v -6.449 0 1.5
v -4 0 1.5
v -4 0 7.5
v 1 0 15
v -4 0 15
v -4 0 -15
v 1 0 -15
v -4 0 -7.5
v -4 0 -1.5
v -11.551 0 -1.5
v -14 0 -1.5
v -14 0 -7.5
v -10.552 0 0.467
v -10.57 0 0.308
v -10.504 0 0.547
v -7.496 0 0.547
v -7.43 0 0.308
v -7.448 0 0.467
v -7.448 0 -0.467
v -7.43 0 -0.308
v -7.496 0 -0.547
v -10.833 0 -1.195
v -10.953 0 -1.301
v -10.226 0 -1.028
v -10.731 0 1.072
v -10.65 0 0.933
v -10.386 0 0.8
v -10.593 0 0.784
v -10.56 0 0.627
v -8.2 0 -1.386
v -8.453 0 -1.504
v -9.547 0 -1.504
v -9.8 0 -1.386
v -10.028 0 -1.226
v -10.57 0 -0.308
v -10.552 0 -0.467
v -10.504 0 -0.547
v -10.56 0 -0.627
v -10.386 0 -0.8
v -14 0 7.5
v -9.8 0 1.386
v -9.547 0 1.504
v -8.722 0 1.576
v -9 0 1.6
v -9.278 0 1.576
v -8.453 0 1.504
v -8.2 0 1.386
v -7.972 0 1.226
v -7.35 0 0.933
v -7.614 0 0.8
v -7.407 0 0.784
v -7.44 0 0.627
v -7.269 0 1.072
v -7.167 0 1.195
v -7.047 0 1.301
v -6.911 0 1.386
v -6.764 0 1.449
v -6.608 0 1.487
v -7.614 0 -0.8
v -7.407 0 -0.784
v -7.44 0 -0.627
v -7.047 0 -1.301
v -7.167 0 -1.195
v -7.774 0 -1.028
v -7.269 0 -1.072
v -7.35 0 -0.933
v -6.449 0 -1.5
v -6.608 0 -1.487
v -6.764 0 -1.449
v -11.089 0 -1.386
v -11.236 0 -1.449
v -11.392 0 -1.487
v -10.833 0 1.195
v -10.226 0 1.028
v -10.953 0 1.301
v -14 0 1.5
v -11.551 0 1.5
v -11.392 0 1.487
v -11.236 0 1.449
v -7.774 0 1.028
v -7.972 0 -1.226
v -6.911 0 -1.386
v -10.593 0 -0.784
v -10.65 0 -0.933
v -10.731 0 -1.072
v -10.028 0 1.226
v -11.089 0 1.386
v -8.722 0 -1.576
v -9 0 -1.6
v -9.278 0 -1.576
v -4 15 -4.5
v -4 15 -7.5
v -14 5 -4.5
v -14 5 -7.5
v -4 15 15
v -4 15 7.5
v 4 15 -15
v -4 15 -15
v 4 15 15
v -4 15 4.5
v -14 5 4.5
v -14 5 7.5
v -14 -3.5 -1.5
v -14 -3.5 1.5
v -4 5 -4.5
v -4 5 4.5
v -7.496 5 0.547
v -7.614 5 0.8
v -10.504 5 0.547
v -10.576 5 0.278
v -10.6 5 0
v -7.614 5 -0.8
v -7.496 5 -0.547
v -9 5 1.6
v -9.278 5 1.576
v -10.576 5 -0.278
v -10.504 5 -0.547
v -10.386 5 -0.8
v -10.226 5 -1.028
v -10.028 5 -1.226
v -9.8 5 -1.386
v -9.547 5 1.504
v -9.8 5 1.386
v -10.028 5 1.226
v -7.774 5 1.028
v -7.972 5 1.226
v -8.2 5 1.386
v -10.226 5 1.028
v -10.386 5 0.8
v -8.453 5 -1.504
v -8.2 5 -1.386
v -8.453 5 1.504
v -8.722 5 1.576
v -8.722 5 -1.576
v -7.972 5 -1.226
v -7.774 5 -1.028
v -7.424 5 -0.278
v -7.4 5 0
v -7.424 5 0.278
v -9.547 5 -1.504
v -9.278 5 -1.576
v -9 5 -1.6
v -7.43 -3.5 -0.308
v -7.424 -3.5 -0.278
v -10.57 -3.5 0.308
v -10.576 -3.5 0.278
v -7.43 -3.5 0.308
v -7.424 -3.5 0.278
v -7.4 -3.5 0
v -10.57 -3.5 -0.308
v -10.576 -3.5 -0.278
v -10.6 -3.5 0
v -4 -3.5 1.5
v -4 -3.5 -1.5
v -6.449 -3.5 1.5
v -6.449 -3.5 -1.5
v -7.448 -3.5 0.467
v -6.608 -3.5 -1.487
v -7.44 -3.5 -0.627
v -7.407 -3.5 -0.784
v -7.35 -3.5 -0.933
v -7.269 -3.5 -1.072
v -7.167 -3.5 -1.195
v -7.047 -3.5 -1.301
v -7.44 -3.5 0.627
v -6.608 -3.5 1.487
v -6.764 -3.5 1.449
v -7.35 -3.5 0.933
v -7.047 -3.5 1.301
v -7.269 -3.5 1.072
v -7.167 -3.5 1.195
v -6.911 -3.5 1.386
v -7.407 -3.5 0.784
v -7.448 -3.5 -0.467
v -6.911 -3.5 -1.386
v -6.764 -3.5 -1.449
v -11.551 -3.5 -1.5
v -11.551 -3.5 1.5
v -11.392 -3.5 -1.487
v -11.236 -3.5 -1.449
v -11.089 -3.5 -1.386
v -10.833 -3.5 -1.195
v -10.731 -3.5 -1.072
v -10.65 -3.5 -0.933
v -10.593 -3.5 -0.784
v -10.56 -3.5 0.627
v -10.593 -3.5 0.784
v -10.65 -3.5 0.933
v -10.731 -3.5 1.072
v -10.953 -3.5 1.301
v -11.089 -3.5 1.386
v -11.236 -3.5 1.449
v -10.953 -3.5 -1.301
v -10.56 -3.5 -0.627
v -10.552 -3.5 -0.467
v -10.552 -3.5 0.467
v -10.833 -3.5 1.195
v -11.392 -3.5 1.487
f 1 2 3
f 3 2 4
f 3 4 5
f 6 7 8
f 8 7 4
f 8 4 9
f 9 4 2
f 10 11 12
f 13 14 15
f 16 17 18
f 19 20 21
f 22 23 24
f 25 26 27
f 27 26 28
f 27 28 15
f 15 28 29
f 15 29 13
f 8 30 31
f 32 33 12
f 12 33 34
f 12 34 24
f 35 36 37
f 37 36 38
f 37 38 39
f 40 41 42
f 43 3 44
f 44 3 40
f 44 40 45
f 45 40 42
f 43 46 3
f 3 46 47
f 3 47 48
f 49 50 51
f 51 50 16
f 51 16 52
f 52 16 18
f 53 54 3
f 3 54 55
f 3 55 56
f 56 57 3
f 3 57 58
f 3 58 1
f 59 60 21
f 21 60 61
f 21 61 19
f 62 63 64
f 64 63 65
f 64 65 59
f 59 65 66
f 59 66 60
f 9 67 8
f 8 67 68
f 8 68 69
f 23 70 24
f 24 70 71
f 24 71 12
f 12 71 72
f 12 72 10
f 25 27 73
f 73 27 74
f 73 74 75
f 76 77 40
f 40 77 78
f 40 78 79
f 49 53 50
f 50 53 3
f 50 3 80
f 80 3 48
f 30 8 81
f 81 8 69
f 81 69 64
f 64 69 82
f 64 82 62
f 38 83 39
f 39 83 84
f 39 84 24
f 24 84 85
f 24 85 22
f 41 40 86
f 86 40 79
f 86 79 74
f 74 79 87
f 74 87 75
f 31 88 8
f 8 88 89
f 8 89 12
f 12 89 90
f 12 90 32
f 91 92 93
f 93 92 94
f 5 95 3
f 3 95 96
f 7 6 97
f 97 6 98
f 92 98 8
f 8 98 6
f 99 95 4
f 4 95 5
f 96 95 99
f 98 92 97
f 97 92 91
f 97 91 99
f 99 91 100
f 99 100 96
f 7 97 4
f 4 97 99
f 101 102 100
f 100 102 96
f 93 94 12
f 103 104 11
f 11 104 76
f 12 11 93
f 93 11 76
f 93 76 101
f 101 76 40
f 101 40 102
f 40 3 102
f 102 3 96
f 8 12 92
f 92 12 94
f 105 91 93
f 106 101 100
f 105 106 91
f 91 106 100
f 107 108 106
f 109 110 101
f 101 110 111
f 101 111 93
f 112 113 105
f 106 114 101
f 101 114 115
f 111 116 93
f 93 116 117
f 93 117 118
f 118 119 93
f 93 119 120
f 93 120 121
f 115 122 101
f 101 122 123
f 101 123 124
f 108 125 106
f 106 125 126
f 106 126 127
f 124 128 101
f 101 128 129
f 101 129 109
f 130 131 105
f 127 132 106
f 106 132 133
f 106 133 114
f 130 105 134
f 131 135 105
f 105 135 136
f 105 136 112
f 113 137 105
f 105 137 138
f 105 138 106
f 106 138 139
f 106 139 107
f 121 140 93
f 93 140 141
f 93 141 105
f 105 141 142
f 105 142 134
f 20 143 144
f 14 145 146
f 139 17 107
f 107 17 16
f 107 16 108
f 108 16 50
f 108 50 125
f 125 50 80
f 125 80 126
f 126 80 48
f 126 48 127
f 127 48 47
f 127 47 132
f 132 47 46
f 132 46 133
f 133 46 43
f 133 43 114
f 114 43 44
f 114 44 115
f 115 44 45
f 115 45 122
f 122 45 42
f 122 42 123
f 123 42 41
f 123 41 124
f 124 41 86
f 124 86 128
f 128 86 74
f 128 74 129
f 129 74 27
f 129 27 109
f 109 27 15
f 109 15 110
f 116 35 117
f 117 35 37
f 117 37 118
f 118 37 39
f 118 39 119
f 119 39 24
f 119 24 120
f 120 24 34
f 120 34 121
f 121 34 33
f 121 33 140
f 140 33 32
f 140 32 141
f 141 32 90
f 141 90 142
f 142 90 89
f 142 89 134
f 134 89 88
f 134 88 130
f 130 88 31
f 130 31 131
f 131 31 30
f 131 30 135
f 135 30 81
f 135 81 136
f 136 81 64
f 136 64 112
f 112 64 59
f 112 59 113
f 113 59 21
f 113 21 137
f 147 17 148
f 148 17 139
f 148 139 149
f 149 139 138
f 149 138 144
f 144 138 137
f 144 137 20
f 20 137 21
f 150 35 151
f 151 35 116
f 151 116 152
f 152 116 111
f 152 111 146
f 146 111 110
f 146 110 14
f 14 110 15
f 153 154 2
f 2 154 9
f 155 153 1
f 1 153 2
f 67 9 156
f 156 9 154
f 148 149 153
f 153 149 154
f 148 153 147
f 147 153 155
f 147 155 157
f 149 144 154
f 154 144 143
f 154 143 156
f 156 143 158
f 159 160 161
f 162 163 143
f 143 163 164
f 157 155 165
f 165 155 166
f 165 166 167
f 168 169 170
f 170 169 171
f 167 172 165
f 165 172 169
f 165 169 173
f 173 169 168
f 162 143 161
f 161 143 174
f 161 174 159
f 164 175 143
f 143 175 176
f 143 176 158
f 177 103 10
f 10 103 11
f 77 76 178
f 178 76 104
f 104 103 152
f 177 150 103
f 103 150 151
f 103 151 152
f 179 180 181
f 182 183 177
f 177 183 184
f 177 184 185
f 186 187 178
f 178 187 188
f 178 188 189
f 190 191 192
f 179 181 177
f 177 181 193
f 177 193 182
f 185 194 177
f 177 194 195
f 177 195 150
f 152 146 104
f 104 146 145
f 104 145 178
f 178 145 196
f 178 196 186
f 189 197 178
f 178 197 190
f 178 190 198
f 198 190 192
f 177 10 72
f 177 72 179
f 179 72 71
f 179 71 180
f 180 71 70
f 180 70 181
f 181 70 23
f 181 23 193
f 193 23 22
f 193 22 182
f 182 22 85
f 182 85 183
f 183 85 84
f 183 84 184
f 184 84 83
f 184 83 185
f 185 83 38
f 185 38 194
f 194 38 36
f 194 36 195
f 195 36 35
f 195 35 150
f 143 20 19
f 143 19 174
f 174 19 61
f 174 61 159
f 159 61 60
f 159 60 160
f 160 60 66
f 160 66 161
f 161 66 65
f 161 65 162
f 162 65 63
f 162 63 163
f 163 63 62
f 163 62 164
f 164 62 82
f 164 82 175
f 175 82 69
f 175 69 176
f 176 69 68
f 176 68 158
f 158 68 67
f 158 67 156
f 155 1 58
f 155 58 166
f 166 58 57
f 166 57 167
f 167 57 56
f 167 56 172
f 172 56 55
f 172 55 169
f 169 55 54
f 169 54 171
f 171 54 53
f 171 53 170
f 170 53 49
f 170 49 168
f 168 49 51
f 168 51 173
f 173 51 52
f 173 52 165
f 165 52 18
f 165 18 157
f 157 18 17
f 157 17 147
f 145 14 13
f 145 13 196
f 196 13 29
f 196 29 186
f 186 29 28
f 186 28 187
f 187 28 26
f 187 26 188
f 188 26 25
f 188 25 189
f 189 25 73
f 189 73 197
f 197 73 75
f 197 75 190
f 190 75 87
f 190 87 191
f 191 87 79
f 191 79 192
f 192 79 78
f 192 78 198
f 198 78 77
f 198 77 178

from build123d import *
from build123d.topology import SkipClean

# Parameters (mm, degrees)
CROQUIS1_W              = 8
CROQUIS1_H              = 30
SALIENTE_EXTRUIR1_DEPTH = 15
CORTAR_EXTRUIR1_DEPTH   = 34.778691508
SALIENTE_EXTRUIR2_DEPTH = 7.5
CROQUIS4_W              = 10
CROQUIS4_H              = 9
CORTAR_EXTRUIR2_DEPTH   = 10
CROQUIS5_R              = 1.6
CORTAR_EXTRUIR3_DEPTH   = 23.825424421
SALIENTE_EXTRUIR3_DEPTH = 3.5
REDONDEO1_R             = 1


with BuildPart() as part:
    # Croquis1 → Saliente-Extruir1 (new body)
    with BuildSketch(Plane(origin=(0, 0, 0), x_dir=(1, 0, 0), z_dir=(0, 1, 0))):
        Rectangle(CROQUIS1_W, CROQUIS1_H)
    extrude(amount=SALIENTE_EXTRUIR1_DEPTH)

    # Croquis2 → Cortar-Extruir1 (cut, through all)
    with BuildSketch(Plane.XY.offset(15)):
        Polygon((4, 15), (1, 0), (4, 0), align=None)
    extrude(amount=-CORTAR_EXTRUIR1_DEPTH, mode=Mode.SUBTRACT)

    # Croquis3 → Saliente-Extruir2 (add, symmetric)
    with BuildSketch(Plane.XY):
        Polygon((-14, 0), (-4, 0), (-4, 15), (-14, 5), align=None)
    extrude(amount=SALIENTE_EXTRUIR2_DEPTH, both=True)

    # Croquis4 → Cortar-Extruir2 (cut)
    with BuildSketch(Plane(origin=(0, 15, 0), x_dir=(1, 0, 0), z_dir=(0, 1, 0))):
        with Locations((-9, 0)):
            Rectangle(CROQUIS4_W, CROQUIS4_H)
    extrude(amount=-CORTAR_EXTRUIR2_DEPTH, mode=Mode.SUBTRACT)

    # Croquis5 → Cortar-Extruir3 (cut, through all)
    with BuildSketch(Plane(origin=(0, 5, 0), x_dir=(1, 0, 0), z_dir=(0, 1, 0))):
        with Locations(Location((-9, 0, 0), (0, 0, 270))):
            Circle(CROQUIS5_R)
    extrude(amount=-CORTAR_EXTRUIR3_DEPTH, mode=Mode.SUBTRACT)

    # Croquis6 → Saliente-Extruir3 (add)
    with SkipClean():  # the faces are left unmerged after this step: merging them gives an invalid solid
        with BuildSketch(Plane.XZ):
            with BuildLine():
                Line((-8.443223564, 1.5), (-4, 1.5))
                Line((-4, 1.5), (-4, -1.5))
                Line((-4, -1.5), (-8.443223564, -1.5))
                ThreePointArc((-8.443223564, -1.5), (-7.4, 0), (-8.443223564, 1.5))
            make_face()
            with BuildLine():
                Line((-14, -1.5), (-9.556776436, -1.5))
                ThreePointArc((-9.556776436, -1.5), (-10.6, 0), (-9.556776436, 1.5))
                Line((-9.556776436, 1.5), (-14, 1.5))
                Line((-14, 1.5), (-14, -1.5))
            make_face()
        extrude(amount=SALIENTE_EXTRUIR3_DEPTH)

    # Redondeo1
    # the kernel refuses this fillet: 1 mm, written as the material it takes off along each edge
    with BuildSketch(Plane(origin=(-8.443223564, 0, 1.5), x_dir=(1, 0, 0), z_dir=(0, -1, 0)), Plane(origin=(-9.556776436, 0, -1.5), x_dir=(-1, 0, 0), z_dir=(0, -1, 0))) as redondeo1_piece_1:
        with BuildLine():
            CenterArc((1.994693728, -1), REDONDEO1_R, 90, 101.087489211)
            ThreePointArc((1.01335905, -1.192307692), (0.662378184, -0.463823369), (0, 0))
            Line((0, 0), (1.994693728, 0))
        make_face()
    extrude(amount=8.48673432, mode=Mode.SUBTRACT)
    with BuildSketch(Plane(origin=(-8.443223564, 0, -1.5), x_dir=(1, 0, 0), z_dir=(0, -1, 0)), Plane(origin=(-9.556776436, 0, 1.5), x_dir=(-1, 0, 0), z_dir=(0, -1, 0))) as redondeo1_piece_2:
        with BuildLine():
            CenterArc((1.994693728, 1), REDONDEO1_R, 168.912510789, 101.087489211)
            ThreePointArc((1.01335905, 1.192307692), (0.662378184, 0.463823369), (0, 0))
            Line((0, 0), (1.994693728, 0))
        make_face()
    extrude(amount=8.48673432, mode=Mode.SUBTRACT)


solid = part.part
